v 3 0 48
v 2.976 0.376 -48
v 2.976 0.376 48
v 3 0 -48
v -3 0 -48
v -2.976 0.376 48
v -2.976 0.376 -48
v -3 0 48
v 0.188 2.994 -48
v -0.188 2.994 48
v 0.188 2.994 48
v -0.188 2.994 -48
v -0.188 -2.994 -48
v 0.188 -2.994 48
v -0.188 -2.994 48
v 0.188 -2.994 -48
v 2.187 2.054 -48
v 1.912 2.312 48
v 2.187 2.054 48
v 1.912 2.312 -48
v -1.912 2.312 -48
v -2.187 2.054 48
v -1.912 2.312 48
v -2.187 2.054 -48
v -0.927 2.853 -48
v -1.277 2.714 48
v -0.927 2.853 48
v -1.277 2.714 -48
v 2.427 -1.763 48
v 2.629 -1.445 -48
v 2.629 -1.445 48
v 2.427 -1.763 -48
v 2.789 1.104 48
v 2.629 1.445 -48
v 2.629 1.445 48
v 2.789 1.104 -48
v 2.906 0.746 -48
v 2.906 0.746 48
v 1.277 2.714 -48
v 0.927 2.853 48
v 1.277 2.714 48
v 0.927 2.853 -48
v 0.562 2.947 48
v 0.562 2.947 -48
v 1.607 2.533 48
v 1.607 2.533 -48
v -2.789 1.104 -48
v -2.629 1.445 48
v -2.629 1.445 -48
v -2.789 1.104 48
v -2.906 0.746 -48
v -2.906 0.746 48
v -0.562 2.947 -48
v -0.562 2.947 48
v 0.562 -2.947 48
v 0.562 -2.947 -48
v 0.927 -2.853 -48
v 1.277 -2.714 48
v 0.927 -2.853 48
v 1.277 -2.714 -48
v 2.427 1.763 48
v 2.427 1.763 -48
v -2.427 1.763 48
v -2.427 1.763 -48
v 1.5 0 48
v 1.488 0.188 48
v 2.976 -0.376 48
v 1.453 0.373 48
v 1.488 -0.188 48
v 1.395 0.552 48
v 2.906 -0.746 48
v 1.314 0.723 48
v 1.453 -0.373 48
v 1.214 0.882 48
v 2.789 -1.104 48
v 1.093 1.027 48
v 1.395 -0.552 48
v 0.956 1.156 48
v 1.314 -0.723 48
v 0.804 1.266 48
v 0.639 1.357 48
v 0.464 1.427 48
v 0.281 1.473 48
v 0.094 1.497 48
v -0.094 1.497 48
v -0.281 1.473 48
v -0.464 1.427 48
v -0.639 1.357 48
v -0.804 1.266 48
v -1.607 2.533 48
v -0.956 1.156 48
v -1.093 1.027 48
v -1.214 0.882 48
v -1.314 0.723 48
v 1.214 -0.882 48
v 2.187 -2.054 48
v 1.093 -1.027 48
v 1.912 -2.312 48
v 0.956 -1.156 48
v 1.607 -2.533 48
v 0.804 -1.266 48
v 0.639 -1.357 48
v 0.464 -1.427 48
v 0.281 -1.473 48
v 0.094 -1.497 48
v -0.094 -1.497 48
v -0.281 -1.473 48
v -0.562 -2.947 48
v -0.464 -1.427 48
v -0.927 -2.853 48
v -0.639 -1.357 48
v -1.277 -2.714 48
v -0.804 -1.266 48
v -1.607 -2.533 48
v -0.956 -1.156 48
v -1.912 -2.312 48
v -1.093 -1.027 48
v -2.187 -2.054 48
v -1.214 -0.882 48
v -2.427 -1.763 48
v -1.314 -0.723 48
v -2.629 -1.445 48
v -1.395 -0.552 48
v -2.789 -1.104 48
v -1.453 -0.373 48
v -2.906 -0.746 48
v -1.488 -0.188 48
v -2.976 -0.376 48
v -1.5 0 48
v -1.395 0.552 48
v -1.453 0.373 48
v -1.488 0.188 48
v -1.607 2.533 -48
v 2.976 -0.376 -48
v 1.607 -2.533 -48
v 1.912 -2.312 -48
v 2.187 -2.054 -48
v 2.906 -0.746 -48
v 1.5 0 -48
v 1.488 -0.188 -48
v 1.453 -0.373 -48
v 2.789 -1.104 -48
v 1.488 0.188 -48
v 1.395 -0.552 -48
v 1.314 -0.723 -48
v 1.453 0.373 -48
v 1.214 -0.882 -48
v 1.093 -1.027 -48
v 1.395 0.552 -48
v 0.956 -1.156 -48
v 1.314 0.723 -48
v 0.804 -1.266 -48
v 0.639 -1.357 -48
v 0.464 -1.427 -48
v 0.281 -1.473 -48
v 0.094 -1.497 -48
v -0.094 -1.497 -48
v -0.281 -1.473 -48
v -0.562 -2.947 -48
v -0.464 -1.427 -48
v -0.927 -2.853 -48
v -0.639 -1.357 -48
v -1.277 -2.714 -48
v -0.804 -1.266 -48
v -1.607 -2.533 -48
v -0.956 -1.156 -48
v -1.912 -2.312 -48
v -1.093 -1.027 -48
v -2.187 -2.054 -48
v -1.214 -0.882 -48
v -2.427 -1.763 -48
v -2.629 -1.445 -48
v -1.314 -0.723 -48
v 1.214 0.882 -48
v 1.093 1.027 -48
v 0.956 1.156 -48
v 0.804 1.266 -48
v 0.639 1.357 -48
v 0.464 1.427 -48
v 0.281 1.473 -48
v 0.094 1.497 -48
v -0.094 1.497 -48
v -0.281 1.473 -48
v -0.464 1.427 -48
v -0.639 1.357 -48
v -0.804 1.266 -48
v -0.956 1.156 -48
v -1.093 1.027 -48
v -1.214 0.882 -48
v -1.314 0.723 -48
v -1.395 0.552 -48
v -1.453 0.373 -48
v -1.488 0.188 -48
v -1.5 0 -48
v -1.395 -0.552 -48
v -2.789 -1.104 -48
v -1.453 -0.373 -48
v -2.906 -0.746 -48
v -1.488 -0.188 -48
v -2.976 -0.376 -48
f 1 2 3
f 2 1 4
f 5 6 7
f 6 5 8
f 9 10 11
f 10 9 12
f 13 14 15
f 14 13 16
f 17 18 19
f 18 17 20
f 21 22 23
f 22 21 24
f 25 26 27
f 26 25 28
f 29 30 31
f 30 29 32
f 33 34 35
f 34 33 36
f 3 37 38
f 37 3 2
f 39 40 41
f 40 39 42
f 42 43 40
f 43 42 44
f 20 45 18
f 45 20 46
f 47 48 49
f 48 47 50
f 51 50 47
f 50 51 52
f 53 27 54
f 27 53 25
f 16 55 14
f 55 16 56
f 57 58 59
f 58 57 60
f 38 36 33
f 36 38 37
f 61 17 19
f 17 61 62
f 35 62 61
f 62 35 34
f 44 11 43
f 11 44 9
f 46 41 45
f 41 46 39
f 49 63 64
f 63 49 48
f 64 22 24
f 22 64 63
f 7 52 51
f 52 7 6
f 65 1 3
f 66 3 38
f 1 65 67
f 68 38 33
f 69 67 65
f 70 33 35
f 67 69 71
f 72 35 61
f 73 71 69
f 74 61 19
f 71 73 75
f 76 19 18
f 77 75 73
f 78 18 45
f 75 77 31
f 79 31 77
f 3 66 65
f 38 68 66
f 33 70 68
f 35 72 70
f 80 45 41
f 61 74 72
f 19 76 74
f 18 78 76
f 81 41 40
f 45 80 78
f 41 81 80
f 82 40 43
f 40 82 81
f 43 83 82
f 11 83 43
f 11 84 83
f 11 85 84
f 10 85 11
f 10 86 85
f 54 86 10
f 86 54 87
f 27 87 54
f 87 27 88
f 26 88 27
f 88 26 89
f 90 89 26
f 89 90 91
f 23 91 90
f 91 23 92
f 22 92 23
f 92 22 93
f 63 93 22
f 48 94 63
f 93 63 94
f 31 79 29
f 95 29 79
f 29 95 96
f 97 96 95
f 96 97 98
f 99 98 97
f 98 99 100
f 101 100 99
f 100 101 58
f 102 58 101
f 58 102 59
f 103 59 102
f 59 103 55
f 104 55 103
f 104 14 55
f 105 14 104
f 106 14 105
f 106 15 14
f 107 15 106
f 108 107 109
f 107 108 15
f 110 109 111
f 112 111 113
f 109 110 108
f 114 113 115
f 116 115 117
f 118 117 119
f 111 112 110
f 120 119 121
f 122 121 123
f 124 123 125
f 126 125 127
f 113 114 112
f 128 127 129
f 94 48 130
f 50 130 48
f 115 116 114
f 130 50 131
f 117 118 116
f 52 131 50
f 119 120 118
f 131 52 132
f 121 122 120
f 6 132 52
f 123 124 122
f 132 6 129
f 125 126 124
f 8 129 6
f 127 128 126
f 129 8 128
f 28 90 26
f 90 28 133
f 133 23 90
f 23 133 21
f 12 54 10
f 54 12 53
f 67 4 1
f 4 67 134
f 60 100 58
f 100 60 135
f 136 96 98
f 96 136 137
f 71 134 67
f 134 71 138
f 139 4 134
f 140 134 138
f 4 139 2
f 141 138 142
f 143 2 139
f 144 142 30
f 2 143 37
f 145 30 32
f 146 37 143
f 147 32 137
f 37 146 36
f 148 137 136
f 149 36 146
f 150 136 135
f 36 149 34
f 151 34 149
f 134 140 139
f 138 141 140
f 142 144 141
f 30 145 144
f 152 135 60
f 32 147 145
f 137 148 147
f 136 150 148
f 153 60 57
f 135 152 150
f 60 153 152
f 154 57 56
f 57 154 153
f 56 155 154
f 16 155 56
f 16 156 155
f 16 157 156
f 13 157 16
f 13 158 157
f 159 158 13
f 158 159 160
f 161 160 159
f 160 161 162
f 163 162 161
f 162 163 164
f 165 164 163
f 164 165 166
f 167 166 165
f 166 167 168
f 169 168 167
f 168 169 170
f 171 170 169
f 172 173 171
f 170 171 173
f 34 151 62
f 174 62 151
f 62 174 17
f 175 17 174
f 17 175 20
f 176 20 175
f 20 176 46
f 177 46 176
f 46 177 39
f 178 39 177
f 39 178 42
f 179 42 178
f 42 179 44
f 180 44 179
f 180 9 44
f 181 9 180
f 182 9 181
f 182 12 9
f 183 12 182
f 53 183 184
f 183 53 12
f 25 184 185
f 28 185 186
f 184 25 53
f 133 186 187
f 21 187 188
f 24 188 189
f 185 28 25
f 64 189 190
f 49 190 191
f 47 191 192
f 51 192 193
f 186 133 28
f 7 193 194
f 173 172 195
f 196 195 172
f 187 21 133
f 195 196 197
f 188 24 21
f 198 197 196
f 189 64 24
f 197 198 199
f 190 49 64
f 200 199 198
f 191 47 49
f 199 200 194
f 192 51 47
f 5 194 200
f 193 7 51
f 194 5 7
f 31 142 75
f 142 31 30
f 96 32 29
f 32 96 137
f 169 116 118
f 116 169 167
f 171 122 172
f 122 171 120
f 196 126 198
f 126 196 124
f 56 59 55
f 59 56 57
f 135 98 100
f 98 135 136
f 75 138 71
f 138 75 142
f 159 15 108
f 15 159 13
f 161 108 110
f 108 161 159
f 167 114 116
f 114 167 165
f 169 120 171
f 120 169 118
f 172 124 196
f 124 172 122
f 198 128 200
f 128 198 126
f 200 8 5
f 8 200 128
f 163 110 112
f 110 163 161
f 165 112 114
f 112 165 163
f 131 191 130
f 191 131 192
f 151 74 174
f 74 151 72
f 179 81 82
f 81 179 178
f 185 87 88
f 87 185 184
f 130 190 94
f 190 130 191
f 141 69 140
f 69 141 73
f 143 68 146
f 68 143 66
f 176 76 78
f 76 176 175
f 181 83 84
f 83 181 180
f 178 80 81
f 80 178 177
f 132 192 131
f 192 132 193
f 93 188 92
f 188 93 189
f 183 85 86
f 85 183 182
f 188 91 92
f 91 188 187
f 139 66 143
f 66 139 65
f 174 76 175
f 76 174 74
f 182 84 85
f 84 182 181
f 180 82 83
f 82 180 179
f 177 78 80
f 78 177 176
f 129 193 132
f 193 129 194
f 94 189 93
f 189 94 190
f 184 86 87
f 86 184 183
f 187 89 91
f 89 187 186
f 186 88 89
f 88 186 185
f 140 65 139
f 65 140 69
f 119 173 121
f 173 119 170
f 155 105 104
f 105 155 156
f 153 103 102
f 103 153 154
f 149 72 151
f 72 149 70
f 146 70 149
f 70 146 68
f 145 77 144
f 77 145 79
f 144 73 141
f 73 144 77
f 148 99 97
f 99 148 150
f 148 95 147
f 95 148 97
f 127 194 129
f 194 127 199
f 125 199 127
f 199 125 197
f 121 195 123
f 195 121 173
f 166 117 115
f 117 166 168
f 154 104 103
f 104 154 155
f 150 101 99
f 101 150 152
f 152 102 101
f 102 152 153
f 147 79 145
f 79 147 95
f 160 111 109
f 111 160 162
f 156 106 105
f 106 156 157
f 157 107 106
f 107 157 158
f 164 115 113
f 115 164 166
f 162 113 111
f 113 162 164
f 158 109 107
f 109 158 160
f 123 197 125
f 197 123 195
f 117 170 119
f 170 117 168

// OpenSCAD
$fn = 50;


difference() {
	union() {
		translate(v = [0, 0, -48.0000000000]) {
			cylinder(h = 96, r = 3.0000000000);
		}
	}
	union() {
		translate(v = [0, 0, -100.0000000000]) {
			cylinder(h = 200, r = 1.5000000000);
		}
	}
}
